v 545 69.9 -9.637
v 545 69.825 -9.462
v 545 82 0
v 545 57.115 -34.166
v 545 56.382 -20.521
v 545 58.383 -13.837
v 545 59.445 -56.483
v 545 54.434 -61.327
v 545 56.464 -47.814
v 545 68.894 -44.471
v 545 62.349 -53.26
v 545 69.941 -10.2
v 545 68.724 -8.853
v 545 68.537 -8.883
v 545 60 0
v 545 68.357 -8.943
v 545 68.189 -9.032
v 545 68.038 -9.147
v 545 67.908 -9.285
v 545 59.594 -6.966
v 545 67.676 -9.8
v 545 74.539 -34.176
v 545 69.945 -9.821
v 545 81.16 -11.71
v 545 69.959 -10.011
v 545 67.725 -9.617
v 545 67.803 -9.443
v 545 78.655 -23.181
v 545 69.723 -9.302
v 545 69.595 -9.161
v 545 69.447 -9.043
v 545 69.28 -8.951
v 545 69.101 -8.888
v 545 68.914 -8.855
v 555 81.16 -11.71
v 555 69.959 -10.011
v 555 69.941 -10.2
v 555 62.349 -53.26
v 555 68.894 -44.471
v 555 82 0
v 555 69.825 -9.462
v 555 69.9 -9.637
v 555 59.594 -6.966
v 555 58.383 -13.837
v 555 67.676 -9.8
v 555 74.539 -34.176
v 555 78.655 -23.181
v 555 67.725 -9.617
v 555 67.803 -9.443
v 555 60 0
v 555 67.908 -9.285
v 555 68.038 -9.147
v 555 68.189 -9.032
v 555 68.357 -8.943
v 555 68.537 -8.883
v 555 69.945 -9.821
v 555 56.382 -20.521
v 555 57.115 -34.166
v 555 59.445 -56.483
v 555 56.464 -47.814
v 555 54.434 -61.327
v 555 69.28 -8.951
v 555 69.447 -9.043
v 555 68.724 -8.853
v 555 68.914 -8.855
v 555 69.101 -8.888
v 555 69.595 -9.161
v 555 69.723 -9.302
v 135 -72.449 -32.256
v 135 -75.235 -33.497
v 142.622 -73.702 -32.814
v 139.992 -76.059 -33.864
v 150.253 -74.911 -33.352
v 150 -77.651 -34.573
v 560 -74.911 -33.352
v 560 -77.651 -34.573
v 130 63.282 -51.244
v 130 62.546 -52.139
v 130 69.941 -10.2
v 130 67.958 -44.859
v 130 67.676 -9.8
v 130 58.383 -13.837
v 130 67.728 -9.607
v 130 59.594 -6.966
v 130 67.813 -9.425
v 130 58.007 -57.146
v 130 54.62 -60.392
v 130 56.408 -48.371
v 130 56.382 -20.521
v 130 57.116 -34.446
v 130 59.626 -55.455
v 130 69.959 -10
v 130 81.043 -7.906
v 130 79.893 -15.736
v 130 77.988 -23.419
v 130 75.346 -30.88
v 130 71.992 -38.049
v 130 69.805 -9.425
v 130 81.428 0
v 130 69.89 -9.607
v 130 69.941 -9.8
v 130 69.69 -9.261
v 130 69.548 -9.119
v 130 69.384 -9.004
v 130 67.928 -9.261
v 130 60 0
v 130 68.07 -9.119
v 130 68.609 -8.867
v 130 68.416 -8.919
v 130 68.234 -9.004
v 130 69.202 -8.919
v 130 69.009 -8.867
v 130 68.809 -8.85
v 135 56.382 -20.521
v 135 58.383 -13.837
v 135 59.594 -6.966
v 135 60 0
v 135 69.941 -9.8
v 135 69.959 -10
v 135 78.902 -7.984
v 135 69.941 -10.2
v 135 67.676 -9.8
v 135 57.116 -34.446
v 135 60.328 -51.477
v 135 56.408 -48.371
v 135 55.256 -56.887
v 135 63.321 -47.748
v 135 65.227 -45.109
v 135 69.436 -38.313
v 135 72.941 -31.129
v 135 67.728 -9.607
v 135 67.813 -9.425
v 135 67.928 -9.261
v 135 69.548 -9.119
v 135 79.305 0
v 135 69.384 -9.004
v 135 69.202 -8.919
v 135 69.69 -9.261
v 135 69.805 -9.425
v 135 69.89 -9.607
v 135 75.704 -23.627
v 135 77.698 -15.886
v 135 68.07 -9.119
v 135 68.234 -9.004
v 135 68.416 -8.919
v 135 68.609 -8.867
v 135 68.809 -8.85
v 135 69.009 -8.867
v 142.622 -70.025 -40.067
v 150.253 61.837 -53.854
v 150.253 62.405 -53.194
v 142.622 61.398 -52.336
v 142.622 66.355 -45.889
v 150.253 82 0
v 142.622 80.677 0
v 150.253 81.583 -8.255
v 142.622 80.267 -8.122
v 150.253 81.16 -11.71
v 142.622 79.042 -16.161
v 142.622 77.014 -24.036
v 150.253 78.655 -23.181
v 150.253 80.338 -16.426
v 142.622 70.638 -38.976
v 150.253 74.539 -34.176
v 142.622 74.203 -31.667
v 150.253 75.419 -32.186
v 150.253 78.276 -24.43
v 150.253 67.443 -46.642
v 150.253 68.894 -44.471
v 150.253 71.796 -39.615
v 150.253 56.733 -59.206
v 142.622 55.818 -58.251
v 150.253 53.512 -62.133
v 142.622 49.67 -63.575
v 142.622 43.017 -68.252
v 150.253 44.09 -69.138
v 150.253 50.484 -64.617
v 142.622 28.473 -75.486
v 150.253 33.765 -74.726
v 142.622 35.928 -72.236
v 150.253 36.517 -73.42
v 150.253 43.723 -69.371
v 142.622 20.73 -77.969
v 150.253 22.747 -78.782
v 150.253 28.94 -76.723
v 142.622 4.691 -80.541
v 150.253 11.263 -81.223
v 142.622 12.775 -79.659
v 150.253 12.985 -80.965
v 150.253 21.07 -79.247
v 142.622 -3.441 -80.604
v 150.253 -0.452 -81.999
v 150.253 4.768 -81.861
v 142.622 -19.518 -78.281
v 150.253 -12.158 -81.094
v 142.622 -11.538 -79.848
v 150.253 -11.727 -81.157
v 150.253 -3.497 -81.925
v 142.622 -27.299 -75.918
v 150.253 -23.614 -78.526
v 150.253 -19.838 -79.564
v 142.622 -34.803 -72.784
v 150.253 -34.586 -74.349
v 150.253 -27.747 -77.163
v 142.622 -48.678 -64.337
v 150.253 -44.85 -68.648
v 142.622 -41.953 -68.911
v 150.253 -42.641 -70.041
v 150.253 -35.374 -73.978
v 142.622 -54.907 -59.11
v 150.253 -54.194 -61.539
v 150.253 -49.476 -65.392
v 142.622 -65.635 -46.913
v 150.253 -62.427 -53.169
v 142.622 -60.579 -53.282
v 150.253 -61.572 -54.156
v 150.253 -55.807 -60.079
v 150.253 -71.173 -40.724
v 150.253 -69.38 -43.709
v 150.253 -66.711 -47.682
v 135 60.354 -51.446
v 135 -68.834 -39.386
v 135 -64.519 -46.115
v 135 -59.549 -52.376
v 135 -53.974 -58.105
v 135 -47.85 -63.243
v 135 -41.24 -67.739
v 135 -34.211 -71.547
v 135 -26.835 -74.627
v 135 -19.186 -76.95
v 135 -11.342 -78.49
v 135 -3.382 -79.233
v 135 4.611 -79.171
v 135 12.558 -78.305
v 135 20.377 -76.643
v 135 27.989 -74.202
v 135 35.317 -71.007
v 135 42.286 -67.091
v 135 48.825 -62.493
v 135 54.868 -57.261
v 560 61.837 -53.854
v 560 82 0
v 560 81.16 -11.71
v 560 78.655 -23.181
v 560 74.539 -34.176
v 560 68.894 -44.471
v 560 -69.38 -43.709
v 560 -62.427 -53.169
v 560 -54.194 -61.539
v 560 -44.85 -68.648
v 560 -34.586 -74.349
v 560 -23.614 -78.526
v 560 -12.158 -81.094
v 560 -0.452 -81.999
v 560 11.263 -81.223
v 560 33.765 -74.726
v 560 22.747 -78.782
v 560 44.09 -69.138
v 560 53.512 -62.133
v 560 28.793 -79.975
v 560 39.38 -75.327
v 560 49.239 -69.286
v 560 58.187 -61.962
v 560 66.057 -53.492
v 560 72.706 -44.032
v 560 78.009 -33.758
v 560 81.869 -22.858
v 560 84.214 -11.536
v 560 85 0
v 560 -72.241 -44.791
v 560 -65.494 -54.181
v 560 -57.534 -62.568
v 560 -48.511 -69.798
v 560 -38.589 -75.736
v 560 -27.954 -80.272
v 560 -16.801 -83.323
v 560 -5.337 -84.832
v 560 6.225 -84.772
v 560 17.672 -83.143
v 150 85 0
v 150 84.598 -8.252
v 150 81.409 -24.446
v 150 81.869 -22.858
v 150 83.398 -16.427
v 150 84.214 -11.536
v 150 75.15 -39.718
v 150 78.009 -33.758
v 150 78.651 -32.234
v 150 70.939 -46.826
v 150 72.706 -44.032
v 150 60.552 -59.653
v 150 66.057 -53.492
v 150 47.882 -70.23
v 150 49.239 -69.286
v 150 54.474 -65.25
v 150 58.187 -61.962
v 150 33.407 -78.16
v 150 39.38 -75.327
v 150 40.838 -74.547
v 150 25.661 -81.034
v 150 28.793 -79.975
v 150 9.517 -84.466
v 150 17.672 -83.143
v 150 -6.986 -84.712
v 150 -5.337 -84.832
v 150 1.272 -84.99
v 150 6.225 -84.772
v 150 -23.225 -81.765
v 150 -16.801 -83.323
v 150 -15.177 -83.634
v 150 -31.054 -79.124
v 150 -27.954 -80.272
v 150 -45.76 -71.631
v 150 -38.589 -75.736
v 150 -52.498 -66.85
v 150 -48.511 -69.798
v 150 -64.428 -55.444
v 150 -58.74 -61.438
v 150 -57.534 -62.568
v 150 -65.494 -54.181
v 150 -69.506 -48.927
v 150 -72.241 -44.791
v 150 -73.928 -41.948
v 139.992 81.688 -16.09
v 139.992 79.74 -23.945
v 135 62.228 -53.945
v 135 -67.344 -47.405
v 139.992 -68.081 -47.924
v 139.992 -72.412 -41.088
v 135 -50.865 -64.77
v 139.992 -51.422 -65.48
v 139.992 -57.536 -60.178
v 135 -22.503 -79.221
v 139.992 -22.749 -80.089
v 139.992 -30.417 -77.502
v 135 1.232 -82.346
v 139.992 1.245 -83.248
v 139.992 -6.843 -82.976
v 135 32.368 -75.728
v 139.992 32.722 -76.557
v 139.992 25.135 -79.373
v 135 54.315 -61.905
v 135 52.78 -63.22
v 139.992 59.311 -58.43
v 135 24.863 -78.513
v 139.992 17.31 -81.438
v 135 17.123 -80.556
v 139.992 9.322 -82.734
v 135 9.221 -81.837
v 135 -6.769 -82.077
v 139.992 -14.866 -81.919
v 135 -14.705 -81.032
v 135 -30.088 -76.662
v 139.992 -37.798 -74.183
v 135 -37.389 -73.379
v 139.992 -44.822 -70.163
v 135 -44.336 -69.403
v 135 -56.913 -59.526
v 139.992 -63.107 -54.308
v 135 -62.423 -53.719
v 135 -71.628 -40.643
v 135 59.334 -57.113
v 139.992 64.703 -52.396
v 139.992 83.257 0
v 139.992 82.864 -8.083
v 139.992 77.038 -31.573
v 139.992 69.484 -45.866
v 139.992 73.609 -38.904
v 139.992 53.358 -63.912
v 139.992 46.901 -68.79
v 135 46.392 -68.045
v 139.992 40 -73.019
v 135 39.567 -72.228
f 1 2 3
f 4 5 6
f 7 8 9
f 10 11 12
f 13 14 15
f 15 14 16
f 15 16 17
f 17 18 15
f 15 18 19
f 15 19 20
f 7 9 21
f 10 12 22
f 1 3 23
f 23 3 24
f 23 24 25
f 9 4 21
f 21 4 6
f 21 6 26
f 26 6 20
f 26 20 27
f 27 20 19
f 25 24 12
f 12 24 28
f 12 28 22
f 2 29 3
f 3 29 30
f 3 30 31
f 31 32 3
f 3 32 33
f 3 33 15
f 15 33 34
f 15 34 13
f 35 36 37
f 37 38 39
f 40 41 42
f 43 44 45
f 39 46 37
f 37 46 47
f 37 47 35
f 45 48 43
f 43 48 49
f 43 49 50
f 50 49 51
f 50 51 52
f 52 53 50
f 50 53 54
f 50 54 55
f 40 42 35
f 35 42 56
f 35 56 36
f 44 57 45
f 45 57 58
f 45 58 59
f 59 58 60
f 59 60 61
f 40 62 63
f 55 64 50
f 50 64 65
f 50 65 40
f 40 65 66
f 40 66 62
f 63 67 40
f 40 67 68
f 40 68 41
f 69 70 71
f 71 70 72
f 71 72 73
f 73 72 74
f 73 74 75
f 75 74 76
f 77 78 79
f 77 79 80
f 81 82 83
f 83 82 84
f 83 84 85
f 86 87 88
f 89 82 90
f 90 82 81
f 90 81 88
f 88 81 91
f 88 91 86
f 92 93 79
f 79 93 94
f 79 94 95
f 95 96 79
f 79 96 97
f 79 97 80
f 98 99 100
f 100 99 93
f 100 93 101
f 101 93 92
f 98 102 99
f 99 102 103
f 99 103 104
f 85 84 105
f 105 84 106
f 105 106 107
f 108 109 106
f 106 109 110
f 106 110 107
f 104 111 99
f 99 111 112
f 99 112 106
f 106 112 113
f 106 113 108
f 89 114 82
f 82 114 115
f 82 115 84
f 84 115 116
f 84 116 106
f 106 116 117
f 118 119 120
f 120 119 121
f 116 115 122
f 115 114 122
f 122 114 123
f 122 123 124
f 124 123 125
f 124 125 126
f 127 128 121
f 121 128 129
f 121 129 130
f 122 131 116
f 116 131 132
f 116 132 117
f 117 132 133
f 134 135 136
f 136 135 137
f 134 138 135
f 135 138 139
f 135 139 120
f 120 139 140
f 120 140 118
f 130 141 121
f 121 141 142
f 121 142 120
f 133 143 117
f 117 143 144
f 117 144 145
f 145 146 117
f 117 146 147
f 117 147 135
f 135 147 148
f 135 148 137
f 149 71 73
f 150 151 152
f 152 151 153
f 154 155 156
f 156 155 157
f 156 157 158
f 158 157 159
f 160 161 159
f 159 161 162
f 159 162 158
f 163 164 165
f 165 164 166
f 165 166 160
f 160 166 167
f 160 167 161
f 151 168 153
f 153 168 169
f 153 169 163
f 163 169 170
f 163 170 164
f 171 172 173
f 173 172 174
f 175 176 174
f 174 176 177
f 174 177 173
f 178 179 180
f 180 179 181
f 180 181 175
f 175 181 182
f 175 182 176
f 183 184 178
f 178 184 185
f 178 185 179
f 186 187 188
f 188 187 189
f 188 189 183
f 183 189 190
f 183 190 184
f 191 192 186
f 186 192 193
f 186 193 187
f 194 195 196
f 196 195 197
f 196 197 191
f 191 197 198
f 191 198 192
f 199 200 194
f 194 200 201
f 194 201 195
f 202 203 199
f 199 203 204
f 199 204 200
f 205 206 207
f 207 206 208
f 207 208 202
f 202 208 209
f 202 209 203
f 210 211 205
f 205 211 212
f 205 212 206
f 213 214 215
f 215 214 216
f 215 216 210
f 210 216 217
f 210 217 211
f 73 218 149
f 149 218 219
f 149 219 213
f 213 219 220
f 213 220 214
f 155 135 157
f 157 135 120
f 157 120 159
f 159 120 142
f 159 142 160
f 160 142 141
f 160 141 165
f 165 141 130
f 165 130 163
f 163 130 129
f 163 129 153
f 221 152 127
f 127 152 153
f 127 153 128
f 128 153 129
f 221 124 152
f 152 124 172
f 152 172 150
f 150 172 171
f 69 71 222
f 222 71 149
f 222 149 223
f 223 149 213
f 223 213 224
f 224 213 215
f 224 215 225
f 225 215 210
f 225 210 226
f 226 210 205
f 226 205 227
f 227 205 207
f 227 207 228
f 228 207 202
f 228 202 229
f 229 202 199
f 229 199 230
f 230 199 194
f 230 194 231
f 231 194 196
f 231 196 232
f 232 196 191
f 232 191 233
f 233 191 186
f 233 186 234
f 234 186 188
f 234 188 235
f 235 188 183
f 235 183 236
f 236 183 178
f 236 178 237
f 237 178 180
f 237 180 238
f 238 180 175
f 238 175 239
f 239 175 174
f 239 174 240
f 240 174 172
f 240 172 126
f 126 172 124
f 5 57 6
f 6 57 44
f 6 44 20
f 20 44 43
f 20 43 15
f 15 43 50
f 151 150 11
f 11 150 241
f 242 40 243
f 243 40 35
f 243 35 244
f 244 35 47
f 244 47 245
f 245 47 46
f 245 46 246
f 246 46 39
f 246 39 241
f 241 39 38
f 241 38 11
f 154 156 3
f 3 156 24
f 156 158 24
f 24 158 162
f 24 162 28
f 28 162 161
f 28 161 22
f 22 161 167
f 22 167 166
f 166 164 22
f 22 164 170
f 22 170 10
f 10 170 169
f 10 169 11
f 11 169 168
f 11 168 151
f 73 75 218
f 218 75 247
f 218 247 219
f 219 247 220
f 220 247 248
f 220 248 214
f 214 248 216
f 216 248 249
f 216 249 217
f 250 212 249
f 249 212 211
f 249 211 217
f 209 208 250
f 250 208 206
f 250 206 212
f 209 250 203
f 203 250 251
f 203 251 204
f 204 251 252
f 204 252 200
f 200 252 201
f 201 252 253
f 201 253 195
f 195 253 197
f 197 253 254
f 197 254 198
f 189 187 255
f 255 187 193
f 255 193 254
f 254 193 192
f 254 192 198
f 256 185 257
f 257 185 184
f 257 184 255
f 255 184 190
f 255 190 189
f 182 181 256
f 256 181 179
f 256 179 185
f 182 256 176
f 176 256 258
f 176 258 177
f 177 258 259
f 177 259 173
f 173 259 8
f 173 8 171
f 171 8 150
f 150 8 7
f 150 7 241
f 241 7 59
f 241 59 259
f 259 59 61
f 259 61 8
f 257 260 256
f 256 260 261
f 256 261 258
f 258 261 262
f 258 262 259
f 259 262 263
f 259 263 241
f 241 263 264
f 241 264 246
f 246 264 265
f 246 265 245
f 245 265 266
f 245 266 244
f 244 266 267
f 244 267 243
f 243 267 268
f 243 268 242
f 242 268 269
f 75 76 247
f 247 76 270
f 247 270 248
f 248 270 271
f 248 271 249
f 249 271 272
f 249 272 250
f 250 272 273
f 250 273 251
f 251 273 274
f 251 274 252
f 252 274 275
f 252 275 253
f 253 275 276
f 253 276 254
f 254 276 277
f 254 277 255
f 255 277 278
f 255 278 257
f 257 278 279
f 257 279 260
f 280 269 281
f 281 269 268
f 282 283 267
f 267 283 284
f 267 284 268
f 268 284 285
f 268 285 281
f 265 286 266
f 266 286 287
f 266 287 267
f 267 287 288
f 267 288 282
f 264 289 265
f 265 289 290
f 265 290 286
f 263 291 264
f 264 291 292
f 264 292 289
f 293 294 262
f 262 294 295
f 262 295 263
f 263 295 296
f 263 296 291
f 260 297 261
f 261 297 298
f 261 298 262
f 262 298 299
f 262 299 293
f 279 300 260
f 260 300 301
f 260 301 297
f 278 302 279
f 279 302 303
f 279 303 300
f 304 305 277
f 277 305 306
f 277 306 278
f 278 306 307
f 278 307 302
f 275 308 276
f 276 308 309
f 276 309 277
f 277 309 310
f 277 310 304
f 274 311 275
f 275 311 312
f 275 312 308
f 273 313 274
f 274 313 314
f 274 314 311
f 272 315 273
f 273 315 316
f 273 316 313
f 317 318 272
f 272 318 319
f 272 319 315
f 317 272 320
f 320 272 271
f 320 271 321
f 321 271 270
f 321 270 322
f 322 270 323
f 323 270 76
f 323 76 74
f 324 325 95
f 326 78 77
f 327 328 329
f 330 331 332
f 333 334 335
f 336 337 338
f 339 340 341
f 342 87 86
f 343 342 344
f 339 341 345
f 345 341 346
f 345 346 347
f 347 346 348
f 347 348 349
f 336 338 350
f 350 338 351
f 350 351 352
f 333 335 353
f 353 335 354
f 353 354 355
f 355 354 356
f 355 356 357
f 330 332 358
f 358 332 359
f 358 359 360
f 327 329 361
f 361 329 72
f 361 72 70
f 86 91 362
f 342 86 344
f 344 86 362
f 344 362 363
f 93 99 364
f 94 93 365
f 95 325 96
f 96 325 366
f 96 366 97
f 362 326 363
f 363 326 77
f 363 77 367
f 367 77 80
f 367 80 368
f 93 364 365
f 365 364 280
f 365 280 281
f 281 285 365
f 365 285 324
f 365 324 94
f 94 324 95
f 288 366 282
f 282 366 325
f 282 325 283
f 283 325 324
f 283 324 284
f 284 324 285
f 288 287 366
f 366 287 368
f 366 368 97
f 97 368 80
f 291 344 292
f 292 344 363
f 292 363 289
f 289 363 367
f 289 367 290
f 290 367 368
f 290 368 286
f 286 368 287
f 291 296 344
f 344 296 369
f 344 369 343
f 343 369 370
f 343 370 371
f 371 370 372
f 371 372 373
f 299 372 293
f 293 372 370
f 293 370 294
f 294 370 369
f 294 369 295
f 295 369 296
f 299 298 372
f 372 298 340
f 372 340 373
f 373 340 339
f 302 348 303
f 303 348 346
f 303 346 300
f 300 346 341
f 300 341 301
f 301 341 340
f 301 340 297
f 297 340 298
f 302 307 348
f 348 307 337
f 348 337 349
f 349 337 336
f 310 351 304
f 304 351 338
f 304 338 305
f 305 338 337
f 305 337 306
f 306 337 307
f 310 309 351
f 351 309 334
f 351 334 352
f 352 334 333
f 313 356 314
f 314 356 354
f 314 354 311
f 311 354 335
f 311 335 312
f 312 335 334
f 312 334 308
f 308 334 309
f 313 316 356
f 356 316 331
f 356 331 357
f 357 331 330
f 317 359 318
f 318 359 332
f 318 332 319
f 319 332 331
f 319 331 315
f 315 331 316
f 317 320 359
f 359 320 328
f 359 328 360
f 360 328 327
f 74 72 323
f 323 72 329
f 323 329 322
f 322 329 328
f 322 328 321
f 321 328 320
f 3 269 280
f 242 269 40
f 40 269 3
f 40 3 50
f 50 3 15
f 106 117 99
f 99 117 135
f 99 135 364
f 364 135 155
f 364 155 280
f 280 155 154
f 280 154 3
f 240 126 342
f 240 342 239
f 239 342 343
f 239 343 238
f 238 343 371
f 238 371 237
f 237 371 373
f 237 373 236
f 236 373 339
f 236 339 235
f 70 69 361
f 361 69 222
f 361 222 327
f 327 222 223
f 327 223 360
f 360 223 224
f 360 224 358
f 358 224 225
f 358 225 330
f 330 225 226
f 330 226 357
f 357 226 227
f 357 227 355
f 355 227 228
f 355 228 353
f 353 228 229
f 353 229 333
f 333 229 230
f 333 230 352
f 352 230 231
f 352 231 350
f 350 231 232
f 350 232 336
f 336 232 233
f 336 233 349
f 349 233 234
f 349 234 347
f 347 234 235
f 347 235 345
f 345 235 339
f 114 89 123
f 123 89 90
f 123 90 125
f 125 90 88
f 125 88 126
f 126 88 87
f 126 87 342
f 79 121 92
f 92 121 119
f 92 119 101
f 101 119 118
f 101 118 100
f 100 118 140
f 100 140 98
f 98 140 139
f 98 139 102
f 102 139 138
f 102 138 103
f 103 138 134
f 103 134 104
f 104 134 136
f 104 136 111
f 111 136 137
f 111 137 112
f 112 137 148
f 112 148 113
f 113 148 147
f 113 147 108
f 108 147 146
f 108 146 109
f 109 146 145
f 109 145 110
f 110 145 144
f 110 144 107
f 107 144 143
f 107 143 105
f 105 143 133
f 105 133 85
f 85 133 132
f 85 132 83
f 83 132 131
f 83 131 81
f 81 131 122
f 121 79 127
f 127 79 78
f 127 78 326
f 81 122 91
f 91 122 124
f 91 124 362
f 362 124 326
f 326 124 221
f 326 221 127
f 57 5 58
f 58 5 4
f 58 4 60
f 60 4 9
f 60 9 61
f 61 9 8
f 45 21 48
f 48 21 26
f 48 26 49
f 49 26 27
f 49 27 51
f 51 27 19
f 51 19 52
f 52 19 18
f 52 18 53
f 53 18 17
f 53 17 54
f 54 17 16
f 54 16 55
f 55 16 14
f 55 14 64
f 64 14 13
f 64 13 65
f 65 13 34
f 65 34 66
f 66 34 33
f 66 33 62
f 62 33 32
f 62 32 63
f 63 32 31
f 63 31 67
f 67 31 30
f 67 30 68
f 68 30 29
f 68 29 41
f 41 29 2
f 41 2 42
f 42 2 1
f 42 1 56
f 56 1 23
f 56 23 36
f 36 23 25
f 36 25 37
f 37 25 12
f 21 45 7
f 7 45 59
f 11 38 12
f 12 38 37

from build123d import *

# Parameters (mm, degrees)
REVOLVE5_ANGLE          = 156
REVOLVE7_ANGLE          = 50
SKETCH4_OUTSIDE_W       = 180.506
SKETCH4_OUTSIDE_H       = 258.157
CUT_EXTRUDE2_DEPTH      = 170
CUT_EXTRUDE3_DEPTH      = 442.672956065
CUT_EXTRUDE3_DEPTH_BACK = 10
SKETCH5_OUTSIDE_W       = 180.506
SKETCH5_OUTSIDE_H       = 258.157


with BuildPart() as part:
    # Sketch1 → Revolve5 (revolve)
    with BuildSketch(Plane.XY):
        with BuildLine():
            Line((560, 85), (150, 85))
            add(Edge.make_bspline(
                [(130, 81.42814839), (131.199611639, 81.653568948), (134.531160345, 82.27353853), (140.063409966, 83.276352633), (145.198462089, 84.177415336), (148.333178957, 84.715838785), (149.39998937, 84.897876633), (149.733326587, 84.954653305), (149.933332963, 84.98866355), (150, 85)],
                knots=[0.892972089, 0.892972089, 0.892972089, 0.892972089, 0.912262482, 0.946527454, 0.981827786, 0.994656092, 0.99679374, 0.998931275, 1, 1, 1, 1], degree=3))
            Line((130, 81.42814839), (130, 60))
            Line((130, 60), (135, 60))
            Line((135, 60), (135, 79.305358628))
            add(Edge.make_bspline(
                [(135, 79.305358628), (135.41688533, 79.381868697), (140.494804486, 80.310770929), (145.581915204, 81.204990099), (150.253322265, 82)],
                knots=[0.916860703, 0.916860703, 0.916860703, 0.916860703, 0.923577482, 0.99866409, 0.99866409, 0.99866409, 0.99866409], degree=3))
            Line((150.253322265, 82), (545, 82))
            Line((545, 82), (545, 60))
            Line((545, 60), (555, 60))
            Line((555, 60), (555, 82))
            Line((555, 82), (560, 82))
            Line((560, 82), (560, 85))
        make_face()
    revolve(axis=Axis((2.999985029, 0, 0), (-1, 0, 0)), revolution_arc=REVOLVE5_ANGLE)

    # Sketch1<9> → Revolve7 (revolve)
    with BuildSketch(Plane.XY):
        with BuildLine():
            Line((560, 85), (150, 85))
            add(Edge.make_bspline(
                [(130, 81.42814839), (131.199611639, 81.653568948), (134.531160345, 82.27353853), (140.063409966, 83.276352633), (145.198462089, 84.177415336), (148.333178957, 84.715838785), (149.39998937, 84.897876633), (149.733326587, 84.954653305), (149.933332963, 84.98866355), (150, 85)],
                knots=[0.892972089, 0.892972089, 0.892972089, 0.892972089, 0.912262482, 0.946527454, 0.981827786, 0.994656092, 0.99679374, 0.998931275, 1, 1, 1, 1], degree=3))
            Line((130, 81.42814839), (130, 78.37548573))
            add(Edge.make_bspline(
                [(130, 78.37548573), (130.416441261, 78.4539748), (131.249429944, 78.610441407), (132.499278387, 78.843638055), (133.749457206, 79.075350404), (134.58311467, 79.228848558), (135, 79.305358628)],
                knots=[0.889993585, 0.889993585, 0.889993585, 0.889993585, 0.896710365, 0.903427144, 0.910143923, 0.916860703, 0.916860703, 0.916860703, 0.916860703], degree=3))
            add(Edge.make_bspline(
                [(135, 79.305358628), (135.41688533, 79.381868697), (140.494804486, 80.310770929), (145.581915204, 81.204990099), (150.253322265, 82)],
                knots=[0.916860703, 0.916860703, 0.916860703, 0.916860703, 0.923577482, 0.99866409, 0.99866409, 0.99866409, 0.99866409], degree=3))
            Line((150.253322265, 82), (545, 82))
            Line((545, 82), (555, 82))
            Line((555, 82), (560, 82))
            Line((560, 82), (560, 85))
        make_face()
    revolve(axis=Axis((2.999985029, 0, 0), (-1, 0, 0)), revolution_arc=REVOLVE7_ANGLE)

    # Sketch4 outside → Cut-Extrude2 (cut)
    with BuildSketch(Plane.ZY.offset(-135)):
        with Locations((-42.5, 3.6745)):
            Rectangle(SKETCH4_OUTSIDE_W, SKETCH4_OUTSIDE_H)
        with BuildLine():
            Line((0, 60), (0, 82.355324155))
            ThreePointArc((0, 82.355324155), (-28.788899936, 77.159566207), (-53.94524406, 62.227888121))
            Line((-53.94524406, 62.227888121), (-10.199695404, 69.941408635))
            ThreePointArc((-10.199695404, 69.941408635), (-8.867471084, 69.008575123), (-9.800304596, 67.676350803))
            Line((-9.800304596, 67.676350803), (-57.112993118, 59.333847287))
            ThreePointArc((-57.112993118, 59.333847287), (-59.561955461, 56.875063765), (-61.905157801, 54.315291165))
            ThreePointArc((-61.905157801, 54.315291165), (-41.293069586, 56.9484186), (-20.5212086, 56.381557247))
            ThreePointArc((-20.5212086, 56.381557247), (-10.41889066, 59.088465181), (0, 60))
        make_face(mode=Mode.SUBTRACT)
    extrude(amount=CUT_EXTRUDE2_DEPTH, mode=Mode.SUBTRACT)

    # Sketch5 outside → Cut-Extrude3 (cut, two sides: drawn at the far end of the back side and taken through both)
    # profile 1 of 2: a face of its own
    with BuildSketch(Plane(origin=(555, 0, 0), x_dir=(0, 0, -1), z_dir=(1, 0, 0)).offset(-CUT_EXTRUDE3_DEPTH_BACK)):
        with Locations((42.5, 3.6745)):
            Rectangle(SKETCH5_OUTSIDE_W, SKETCH5_OUTSIDE_H)
        with BuildLine():
            Line((0, 85), (0, 60))
            ThreePointArc((0, 60), (10.41889066, 59.088465181), (20.5212086, 56.381557247))
            ThreePointArc((20.5212086, 56.381557247), (40.998184687, 56.962818166), (61.326696118, 54.433779432))
            ThreePointArc((61.326696118, 54.433779432), (80.146948816, -17.333972293), (33.352404732, -74.910727527))
            Line((33.352404732, -74.910727527), (34.572614661, -77.6513639))
            ThreePointArc((34.572614661, -77.6513639), (83.142546062, 17.67249372), (0, 85))
        make_face(mode=Mode.SUBTRACT)
    # profile 2 of 2: a face of its own
    with BuildSketch(Plane(origin=(555, 0, 0), x_dir=(0, 0, -1), z_dir=(1, 0, 0)).offset(-CUT_EXTRUDE3_DEPTH_BACK)):
        with BuildLine():
            Line((9.800304596, 67.676350803), (56.482682204, 59.444988107))
            ThreePointArc((56.482682204, 59.444988107), (54.890605033, 60.918153937), (53.260119726, 62.348694026))
            Line((53.260119726, 62.348694026), (10.199695404, 69.941408635))
            ThreePointArc((10.199695404, 69.941408635), (8.867471084, 69.008575123), (9.800304596, 67.676350803))
        make_face()
    extrude(amount=CUT_EXTRUDE3_DEPTH + CUT_EXTRUDE3_DEPTH_BACK, mode=Mode.SUBTRACT)


solid = part.part
